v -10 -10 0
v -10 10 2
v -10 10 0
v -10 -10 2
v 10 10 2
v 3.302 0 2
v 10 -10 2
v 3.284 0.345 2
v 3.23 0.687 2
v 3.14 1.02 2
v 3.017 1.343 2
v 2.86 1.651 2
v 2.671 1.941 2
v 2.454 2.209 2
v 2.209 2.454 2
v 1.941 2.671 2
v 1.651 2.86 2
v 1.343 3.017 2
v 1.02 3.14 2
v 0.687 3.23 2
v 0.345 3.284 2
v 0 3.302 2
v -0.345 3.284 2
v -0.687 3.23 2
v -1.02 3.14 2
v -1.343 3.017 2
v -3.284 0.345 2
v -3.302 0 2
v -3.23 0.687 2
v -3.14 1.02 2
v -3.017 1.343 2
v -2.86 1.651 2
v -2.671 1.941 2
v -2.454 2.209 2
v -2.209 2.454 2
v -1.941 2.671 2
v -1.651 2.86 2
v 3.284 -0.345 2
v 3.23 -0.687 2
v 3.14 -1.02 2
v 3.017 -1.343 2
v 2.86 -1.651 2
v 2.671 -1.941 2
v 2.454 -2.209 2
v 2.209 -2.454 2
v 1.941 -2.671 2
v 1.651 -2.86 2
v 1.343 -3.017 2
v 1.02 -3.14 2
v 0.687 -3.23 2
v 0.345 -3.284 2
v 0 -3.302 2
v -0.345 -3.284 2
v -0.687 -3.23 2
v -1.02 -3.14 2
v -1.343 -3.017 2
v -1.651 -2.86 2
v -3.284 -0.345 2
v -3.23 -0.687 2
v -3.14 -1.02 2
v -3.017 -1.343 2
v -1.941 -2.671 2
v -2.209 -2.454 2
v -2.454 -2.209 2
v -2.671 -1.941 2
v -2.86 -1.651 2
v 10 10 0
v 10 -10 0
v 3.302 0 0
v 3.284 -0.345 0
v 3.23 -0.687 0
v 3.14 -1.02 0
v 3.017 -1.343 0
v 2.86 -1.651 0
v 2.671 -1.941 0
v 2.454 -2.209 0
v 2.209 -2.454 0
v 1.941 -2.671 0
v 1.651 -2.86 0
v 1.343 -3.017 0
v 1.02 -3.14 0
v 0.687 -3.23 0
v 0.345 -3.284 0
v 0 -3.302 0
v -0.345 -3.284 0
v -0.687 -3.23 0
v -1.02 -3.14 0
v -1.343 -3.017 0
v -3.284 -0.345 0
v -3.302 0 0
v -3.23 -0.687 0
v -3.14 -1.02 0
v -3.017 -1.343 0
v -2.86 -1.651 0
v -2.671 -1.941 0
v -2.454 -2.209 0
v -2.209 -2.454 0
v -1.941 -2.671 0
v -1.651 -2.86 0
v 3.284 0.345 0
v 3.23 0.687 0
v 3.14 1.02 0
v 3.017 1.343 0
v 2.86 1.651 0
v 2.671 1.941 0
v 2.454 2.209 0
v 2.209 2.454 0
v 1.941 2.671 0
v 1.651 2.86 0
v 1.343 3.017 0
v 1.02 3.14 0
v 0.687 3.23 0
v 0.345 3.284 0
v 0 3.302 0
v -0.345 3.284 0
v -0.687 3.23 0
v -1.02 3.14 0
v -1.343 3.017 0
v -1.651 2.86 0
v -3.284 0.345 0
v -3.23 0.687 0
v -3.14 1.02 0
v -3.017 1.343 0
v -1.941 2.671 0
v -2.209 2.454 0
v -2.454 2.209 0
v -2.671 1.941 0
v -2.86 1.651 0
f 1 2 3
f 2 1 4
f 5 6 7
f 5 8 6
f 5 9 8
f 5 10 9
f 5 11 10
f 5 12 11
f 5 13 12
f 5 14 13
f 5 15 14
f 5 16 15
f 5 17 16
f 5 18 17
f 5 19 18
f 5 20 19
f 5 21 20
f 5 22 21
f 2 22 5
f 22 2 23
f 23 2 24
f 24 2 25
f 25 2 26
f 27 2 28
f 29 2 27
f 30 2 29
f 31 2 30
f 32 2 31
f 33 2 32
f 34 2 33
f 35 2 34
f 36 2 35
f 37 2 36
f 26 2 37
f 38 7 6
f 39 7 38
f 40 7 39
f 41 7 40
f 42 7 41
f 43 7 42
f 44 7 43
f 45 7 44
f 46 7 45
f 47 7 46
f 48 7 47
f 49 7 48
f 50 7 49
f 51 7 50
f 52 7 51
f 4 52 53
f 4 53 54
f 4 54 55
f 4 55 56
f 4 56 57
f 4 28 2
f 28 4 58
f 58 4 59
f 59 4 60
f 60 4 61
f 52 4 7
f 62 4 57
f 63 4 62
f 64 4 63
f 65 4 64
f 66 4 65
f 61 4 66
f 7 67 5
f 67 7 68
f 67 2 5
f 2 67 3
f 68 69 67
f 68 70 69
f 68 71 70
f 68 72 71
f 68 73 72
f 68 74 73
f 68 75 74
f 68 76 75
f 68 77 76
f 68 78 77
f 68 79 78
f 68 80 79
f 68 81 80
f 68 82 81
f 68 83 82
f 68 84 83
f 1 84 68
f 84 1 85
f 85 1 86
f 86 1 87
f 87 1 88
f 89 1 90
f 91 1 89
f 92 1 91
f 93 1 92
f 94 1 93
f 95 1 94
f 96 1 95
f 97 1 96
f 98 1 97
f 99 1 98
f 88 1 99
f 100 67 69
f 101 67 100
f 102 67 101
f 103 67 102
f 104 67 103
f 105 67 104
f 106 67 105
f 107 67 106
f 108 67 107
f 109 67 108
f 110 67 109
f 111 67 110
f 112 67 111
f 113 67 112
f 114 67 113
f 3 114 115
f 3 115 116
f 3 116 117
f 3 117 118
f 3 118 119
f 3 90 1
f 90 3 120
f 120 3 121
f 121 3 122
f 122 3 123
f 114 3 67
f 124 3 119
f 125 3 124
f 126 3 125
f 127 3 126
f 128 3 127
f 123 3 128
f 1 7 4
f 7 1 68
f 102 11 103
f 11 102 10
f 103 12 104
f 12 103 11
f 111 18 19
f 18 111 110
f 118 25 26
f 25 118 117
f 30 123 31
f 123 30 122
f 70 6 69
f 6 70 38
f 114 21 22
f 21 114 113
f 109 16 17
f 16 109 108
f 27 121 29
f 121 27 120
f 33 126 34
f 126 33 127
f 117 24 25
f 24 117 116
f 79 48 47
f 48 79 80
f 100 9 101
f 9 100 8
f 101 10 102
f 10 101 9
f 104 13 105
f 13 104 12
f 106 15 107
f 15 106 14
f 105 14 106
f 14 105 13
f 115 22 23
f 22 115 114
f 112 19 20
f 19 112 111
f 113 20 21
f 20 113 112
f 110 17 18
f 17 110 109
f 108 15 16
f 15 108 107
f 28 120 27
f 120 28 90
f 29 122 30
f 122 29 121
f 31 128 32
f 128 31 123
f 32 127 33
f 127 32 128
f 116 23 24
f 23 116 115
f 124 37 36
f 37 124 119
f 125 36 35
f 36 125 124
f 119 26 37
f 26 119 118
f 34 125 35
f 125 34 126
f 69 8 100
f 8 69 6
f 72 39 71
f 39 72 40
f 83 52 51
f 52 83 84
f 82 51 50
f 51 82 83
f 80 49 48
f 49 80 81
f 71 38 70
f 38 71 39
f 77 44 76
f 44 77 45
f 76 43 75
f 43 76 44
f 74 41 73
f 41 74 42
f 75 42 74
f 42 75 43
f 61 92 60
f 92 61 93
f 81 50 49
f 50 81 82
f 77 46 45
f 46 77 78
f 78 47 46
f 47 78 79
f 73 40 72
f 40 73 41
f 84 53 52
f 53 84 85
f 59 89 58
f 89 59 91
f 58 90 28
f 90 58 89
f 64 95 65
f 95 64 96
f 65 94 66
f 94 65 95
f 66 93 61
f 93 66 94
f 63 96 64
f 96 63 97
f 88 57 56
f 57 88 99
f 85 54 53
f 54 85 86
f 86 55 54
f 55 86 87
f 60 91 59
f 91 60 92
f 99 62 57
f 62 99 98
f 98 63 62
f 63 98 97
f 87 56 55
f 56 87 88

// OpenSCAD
// SMA Connector Thickness Test Plate - 2mm Version
// Purpose: Verify if 2mm wall thickness allows SMA connector nut engagement.

/* [Dimensions] */
// User specified: 2cm x 2cm square, 2mm thick.
// Using specific millimeter values for the test, but keeping INCH constant for hole sizing consistency
INCH = 25.4;

width = 20;     // 2cm
length = 20;    // 2cm
thickness = 2;  // 2mm

/* [Hole Dimensions] */
// From main project (all-seeing-eye.1.6.scad): sma_hole_diameter = 0.26 * INCH
sma_hole_diameter = 0.26 * INCH; 

/* [Rendering resolution] */
$fn = 60;

module test_plate() {
    difference() {
        // 1. Positive volume (The Plate)
        // Centered on X/Y, sitting on Z=0
        translate([0, 0, thickness/2])
            cube([width, length, thickness], center=true);
        
        // 2. Negative volume (SMA Hole)
        // Cylinder centered at origin, extending through the plate
        translate([0, 0, -1])
            cylinder(h = thickness + 2, d = sma_hole_diameter);
    }
}

test_plate();
